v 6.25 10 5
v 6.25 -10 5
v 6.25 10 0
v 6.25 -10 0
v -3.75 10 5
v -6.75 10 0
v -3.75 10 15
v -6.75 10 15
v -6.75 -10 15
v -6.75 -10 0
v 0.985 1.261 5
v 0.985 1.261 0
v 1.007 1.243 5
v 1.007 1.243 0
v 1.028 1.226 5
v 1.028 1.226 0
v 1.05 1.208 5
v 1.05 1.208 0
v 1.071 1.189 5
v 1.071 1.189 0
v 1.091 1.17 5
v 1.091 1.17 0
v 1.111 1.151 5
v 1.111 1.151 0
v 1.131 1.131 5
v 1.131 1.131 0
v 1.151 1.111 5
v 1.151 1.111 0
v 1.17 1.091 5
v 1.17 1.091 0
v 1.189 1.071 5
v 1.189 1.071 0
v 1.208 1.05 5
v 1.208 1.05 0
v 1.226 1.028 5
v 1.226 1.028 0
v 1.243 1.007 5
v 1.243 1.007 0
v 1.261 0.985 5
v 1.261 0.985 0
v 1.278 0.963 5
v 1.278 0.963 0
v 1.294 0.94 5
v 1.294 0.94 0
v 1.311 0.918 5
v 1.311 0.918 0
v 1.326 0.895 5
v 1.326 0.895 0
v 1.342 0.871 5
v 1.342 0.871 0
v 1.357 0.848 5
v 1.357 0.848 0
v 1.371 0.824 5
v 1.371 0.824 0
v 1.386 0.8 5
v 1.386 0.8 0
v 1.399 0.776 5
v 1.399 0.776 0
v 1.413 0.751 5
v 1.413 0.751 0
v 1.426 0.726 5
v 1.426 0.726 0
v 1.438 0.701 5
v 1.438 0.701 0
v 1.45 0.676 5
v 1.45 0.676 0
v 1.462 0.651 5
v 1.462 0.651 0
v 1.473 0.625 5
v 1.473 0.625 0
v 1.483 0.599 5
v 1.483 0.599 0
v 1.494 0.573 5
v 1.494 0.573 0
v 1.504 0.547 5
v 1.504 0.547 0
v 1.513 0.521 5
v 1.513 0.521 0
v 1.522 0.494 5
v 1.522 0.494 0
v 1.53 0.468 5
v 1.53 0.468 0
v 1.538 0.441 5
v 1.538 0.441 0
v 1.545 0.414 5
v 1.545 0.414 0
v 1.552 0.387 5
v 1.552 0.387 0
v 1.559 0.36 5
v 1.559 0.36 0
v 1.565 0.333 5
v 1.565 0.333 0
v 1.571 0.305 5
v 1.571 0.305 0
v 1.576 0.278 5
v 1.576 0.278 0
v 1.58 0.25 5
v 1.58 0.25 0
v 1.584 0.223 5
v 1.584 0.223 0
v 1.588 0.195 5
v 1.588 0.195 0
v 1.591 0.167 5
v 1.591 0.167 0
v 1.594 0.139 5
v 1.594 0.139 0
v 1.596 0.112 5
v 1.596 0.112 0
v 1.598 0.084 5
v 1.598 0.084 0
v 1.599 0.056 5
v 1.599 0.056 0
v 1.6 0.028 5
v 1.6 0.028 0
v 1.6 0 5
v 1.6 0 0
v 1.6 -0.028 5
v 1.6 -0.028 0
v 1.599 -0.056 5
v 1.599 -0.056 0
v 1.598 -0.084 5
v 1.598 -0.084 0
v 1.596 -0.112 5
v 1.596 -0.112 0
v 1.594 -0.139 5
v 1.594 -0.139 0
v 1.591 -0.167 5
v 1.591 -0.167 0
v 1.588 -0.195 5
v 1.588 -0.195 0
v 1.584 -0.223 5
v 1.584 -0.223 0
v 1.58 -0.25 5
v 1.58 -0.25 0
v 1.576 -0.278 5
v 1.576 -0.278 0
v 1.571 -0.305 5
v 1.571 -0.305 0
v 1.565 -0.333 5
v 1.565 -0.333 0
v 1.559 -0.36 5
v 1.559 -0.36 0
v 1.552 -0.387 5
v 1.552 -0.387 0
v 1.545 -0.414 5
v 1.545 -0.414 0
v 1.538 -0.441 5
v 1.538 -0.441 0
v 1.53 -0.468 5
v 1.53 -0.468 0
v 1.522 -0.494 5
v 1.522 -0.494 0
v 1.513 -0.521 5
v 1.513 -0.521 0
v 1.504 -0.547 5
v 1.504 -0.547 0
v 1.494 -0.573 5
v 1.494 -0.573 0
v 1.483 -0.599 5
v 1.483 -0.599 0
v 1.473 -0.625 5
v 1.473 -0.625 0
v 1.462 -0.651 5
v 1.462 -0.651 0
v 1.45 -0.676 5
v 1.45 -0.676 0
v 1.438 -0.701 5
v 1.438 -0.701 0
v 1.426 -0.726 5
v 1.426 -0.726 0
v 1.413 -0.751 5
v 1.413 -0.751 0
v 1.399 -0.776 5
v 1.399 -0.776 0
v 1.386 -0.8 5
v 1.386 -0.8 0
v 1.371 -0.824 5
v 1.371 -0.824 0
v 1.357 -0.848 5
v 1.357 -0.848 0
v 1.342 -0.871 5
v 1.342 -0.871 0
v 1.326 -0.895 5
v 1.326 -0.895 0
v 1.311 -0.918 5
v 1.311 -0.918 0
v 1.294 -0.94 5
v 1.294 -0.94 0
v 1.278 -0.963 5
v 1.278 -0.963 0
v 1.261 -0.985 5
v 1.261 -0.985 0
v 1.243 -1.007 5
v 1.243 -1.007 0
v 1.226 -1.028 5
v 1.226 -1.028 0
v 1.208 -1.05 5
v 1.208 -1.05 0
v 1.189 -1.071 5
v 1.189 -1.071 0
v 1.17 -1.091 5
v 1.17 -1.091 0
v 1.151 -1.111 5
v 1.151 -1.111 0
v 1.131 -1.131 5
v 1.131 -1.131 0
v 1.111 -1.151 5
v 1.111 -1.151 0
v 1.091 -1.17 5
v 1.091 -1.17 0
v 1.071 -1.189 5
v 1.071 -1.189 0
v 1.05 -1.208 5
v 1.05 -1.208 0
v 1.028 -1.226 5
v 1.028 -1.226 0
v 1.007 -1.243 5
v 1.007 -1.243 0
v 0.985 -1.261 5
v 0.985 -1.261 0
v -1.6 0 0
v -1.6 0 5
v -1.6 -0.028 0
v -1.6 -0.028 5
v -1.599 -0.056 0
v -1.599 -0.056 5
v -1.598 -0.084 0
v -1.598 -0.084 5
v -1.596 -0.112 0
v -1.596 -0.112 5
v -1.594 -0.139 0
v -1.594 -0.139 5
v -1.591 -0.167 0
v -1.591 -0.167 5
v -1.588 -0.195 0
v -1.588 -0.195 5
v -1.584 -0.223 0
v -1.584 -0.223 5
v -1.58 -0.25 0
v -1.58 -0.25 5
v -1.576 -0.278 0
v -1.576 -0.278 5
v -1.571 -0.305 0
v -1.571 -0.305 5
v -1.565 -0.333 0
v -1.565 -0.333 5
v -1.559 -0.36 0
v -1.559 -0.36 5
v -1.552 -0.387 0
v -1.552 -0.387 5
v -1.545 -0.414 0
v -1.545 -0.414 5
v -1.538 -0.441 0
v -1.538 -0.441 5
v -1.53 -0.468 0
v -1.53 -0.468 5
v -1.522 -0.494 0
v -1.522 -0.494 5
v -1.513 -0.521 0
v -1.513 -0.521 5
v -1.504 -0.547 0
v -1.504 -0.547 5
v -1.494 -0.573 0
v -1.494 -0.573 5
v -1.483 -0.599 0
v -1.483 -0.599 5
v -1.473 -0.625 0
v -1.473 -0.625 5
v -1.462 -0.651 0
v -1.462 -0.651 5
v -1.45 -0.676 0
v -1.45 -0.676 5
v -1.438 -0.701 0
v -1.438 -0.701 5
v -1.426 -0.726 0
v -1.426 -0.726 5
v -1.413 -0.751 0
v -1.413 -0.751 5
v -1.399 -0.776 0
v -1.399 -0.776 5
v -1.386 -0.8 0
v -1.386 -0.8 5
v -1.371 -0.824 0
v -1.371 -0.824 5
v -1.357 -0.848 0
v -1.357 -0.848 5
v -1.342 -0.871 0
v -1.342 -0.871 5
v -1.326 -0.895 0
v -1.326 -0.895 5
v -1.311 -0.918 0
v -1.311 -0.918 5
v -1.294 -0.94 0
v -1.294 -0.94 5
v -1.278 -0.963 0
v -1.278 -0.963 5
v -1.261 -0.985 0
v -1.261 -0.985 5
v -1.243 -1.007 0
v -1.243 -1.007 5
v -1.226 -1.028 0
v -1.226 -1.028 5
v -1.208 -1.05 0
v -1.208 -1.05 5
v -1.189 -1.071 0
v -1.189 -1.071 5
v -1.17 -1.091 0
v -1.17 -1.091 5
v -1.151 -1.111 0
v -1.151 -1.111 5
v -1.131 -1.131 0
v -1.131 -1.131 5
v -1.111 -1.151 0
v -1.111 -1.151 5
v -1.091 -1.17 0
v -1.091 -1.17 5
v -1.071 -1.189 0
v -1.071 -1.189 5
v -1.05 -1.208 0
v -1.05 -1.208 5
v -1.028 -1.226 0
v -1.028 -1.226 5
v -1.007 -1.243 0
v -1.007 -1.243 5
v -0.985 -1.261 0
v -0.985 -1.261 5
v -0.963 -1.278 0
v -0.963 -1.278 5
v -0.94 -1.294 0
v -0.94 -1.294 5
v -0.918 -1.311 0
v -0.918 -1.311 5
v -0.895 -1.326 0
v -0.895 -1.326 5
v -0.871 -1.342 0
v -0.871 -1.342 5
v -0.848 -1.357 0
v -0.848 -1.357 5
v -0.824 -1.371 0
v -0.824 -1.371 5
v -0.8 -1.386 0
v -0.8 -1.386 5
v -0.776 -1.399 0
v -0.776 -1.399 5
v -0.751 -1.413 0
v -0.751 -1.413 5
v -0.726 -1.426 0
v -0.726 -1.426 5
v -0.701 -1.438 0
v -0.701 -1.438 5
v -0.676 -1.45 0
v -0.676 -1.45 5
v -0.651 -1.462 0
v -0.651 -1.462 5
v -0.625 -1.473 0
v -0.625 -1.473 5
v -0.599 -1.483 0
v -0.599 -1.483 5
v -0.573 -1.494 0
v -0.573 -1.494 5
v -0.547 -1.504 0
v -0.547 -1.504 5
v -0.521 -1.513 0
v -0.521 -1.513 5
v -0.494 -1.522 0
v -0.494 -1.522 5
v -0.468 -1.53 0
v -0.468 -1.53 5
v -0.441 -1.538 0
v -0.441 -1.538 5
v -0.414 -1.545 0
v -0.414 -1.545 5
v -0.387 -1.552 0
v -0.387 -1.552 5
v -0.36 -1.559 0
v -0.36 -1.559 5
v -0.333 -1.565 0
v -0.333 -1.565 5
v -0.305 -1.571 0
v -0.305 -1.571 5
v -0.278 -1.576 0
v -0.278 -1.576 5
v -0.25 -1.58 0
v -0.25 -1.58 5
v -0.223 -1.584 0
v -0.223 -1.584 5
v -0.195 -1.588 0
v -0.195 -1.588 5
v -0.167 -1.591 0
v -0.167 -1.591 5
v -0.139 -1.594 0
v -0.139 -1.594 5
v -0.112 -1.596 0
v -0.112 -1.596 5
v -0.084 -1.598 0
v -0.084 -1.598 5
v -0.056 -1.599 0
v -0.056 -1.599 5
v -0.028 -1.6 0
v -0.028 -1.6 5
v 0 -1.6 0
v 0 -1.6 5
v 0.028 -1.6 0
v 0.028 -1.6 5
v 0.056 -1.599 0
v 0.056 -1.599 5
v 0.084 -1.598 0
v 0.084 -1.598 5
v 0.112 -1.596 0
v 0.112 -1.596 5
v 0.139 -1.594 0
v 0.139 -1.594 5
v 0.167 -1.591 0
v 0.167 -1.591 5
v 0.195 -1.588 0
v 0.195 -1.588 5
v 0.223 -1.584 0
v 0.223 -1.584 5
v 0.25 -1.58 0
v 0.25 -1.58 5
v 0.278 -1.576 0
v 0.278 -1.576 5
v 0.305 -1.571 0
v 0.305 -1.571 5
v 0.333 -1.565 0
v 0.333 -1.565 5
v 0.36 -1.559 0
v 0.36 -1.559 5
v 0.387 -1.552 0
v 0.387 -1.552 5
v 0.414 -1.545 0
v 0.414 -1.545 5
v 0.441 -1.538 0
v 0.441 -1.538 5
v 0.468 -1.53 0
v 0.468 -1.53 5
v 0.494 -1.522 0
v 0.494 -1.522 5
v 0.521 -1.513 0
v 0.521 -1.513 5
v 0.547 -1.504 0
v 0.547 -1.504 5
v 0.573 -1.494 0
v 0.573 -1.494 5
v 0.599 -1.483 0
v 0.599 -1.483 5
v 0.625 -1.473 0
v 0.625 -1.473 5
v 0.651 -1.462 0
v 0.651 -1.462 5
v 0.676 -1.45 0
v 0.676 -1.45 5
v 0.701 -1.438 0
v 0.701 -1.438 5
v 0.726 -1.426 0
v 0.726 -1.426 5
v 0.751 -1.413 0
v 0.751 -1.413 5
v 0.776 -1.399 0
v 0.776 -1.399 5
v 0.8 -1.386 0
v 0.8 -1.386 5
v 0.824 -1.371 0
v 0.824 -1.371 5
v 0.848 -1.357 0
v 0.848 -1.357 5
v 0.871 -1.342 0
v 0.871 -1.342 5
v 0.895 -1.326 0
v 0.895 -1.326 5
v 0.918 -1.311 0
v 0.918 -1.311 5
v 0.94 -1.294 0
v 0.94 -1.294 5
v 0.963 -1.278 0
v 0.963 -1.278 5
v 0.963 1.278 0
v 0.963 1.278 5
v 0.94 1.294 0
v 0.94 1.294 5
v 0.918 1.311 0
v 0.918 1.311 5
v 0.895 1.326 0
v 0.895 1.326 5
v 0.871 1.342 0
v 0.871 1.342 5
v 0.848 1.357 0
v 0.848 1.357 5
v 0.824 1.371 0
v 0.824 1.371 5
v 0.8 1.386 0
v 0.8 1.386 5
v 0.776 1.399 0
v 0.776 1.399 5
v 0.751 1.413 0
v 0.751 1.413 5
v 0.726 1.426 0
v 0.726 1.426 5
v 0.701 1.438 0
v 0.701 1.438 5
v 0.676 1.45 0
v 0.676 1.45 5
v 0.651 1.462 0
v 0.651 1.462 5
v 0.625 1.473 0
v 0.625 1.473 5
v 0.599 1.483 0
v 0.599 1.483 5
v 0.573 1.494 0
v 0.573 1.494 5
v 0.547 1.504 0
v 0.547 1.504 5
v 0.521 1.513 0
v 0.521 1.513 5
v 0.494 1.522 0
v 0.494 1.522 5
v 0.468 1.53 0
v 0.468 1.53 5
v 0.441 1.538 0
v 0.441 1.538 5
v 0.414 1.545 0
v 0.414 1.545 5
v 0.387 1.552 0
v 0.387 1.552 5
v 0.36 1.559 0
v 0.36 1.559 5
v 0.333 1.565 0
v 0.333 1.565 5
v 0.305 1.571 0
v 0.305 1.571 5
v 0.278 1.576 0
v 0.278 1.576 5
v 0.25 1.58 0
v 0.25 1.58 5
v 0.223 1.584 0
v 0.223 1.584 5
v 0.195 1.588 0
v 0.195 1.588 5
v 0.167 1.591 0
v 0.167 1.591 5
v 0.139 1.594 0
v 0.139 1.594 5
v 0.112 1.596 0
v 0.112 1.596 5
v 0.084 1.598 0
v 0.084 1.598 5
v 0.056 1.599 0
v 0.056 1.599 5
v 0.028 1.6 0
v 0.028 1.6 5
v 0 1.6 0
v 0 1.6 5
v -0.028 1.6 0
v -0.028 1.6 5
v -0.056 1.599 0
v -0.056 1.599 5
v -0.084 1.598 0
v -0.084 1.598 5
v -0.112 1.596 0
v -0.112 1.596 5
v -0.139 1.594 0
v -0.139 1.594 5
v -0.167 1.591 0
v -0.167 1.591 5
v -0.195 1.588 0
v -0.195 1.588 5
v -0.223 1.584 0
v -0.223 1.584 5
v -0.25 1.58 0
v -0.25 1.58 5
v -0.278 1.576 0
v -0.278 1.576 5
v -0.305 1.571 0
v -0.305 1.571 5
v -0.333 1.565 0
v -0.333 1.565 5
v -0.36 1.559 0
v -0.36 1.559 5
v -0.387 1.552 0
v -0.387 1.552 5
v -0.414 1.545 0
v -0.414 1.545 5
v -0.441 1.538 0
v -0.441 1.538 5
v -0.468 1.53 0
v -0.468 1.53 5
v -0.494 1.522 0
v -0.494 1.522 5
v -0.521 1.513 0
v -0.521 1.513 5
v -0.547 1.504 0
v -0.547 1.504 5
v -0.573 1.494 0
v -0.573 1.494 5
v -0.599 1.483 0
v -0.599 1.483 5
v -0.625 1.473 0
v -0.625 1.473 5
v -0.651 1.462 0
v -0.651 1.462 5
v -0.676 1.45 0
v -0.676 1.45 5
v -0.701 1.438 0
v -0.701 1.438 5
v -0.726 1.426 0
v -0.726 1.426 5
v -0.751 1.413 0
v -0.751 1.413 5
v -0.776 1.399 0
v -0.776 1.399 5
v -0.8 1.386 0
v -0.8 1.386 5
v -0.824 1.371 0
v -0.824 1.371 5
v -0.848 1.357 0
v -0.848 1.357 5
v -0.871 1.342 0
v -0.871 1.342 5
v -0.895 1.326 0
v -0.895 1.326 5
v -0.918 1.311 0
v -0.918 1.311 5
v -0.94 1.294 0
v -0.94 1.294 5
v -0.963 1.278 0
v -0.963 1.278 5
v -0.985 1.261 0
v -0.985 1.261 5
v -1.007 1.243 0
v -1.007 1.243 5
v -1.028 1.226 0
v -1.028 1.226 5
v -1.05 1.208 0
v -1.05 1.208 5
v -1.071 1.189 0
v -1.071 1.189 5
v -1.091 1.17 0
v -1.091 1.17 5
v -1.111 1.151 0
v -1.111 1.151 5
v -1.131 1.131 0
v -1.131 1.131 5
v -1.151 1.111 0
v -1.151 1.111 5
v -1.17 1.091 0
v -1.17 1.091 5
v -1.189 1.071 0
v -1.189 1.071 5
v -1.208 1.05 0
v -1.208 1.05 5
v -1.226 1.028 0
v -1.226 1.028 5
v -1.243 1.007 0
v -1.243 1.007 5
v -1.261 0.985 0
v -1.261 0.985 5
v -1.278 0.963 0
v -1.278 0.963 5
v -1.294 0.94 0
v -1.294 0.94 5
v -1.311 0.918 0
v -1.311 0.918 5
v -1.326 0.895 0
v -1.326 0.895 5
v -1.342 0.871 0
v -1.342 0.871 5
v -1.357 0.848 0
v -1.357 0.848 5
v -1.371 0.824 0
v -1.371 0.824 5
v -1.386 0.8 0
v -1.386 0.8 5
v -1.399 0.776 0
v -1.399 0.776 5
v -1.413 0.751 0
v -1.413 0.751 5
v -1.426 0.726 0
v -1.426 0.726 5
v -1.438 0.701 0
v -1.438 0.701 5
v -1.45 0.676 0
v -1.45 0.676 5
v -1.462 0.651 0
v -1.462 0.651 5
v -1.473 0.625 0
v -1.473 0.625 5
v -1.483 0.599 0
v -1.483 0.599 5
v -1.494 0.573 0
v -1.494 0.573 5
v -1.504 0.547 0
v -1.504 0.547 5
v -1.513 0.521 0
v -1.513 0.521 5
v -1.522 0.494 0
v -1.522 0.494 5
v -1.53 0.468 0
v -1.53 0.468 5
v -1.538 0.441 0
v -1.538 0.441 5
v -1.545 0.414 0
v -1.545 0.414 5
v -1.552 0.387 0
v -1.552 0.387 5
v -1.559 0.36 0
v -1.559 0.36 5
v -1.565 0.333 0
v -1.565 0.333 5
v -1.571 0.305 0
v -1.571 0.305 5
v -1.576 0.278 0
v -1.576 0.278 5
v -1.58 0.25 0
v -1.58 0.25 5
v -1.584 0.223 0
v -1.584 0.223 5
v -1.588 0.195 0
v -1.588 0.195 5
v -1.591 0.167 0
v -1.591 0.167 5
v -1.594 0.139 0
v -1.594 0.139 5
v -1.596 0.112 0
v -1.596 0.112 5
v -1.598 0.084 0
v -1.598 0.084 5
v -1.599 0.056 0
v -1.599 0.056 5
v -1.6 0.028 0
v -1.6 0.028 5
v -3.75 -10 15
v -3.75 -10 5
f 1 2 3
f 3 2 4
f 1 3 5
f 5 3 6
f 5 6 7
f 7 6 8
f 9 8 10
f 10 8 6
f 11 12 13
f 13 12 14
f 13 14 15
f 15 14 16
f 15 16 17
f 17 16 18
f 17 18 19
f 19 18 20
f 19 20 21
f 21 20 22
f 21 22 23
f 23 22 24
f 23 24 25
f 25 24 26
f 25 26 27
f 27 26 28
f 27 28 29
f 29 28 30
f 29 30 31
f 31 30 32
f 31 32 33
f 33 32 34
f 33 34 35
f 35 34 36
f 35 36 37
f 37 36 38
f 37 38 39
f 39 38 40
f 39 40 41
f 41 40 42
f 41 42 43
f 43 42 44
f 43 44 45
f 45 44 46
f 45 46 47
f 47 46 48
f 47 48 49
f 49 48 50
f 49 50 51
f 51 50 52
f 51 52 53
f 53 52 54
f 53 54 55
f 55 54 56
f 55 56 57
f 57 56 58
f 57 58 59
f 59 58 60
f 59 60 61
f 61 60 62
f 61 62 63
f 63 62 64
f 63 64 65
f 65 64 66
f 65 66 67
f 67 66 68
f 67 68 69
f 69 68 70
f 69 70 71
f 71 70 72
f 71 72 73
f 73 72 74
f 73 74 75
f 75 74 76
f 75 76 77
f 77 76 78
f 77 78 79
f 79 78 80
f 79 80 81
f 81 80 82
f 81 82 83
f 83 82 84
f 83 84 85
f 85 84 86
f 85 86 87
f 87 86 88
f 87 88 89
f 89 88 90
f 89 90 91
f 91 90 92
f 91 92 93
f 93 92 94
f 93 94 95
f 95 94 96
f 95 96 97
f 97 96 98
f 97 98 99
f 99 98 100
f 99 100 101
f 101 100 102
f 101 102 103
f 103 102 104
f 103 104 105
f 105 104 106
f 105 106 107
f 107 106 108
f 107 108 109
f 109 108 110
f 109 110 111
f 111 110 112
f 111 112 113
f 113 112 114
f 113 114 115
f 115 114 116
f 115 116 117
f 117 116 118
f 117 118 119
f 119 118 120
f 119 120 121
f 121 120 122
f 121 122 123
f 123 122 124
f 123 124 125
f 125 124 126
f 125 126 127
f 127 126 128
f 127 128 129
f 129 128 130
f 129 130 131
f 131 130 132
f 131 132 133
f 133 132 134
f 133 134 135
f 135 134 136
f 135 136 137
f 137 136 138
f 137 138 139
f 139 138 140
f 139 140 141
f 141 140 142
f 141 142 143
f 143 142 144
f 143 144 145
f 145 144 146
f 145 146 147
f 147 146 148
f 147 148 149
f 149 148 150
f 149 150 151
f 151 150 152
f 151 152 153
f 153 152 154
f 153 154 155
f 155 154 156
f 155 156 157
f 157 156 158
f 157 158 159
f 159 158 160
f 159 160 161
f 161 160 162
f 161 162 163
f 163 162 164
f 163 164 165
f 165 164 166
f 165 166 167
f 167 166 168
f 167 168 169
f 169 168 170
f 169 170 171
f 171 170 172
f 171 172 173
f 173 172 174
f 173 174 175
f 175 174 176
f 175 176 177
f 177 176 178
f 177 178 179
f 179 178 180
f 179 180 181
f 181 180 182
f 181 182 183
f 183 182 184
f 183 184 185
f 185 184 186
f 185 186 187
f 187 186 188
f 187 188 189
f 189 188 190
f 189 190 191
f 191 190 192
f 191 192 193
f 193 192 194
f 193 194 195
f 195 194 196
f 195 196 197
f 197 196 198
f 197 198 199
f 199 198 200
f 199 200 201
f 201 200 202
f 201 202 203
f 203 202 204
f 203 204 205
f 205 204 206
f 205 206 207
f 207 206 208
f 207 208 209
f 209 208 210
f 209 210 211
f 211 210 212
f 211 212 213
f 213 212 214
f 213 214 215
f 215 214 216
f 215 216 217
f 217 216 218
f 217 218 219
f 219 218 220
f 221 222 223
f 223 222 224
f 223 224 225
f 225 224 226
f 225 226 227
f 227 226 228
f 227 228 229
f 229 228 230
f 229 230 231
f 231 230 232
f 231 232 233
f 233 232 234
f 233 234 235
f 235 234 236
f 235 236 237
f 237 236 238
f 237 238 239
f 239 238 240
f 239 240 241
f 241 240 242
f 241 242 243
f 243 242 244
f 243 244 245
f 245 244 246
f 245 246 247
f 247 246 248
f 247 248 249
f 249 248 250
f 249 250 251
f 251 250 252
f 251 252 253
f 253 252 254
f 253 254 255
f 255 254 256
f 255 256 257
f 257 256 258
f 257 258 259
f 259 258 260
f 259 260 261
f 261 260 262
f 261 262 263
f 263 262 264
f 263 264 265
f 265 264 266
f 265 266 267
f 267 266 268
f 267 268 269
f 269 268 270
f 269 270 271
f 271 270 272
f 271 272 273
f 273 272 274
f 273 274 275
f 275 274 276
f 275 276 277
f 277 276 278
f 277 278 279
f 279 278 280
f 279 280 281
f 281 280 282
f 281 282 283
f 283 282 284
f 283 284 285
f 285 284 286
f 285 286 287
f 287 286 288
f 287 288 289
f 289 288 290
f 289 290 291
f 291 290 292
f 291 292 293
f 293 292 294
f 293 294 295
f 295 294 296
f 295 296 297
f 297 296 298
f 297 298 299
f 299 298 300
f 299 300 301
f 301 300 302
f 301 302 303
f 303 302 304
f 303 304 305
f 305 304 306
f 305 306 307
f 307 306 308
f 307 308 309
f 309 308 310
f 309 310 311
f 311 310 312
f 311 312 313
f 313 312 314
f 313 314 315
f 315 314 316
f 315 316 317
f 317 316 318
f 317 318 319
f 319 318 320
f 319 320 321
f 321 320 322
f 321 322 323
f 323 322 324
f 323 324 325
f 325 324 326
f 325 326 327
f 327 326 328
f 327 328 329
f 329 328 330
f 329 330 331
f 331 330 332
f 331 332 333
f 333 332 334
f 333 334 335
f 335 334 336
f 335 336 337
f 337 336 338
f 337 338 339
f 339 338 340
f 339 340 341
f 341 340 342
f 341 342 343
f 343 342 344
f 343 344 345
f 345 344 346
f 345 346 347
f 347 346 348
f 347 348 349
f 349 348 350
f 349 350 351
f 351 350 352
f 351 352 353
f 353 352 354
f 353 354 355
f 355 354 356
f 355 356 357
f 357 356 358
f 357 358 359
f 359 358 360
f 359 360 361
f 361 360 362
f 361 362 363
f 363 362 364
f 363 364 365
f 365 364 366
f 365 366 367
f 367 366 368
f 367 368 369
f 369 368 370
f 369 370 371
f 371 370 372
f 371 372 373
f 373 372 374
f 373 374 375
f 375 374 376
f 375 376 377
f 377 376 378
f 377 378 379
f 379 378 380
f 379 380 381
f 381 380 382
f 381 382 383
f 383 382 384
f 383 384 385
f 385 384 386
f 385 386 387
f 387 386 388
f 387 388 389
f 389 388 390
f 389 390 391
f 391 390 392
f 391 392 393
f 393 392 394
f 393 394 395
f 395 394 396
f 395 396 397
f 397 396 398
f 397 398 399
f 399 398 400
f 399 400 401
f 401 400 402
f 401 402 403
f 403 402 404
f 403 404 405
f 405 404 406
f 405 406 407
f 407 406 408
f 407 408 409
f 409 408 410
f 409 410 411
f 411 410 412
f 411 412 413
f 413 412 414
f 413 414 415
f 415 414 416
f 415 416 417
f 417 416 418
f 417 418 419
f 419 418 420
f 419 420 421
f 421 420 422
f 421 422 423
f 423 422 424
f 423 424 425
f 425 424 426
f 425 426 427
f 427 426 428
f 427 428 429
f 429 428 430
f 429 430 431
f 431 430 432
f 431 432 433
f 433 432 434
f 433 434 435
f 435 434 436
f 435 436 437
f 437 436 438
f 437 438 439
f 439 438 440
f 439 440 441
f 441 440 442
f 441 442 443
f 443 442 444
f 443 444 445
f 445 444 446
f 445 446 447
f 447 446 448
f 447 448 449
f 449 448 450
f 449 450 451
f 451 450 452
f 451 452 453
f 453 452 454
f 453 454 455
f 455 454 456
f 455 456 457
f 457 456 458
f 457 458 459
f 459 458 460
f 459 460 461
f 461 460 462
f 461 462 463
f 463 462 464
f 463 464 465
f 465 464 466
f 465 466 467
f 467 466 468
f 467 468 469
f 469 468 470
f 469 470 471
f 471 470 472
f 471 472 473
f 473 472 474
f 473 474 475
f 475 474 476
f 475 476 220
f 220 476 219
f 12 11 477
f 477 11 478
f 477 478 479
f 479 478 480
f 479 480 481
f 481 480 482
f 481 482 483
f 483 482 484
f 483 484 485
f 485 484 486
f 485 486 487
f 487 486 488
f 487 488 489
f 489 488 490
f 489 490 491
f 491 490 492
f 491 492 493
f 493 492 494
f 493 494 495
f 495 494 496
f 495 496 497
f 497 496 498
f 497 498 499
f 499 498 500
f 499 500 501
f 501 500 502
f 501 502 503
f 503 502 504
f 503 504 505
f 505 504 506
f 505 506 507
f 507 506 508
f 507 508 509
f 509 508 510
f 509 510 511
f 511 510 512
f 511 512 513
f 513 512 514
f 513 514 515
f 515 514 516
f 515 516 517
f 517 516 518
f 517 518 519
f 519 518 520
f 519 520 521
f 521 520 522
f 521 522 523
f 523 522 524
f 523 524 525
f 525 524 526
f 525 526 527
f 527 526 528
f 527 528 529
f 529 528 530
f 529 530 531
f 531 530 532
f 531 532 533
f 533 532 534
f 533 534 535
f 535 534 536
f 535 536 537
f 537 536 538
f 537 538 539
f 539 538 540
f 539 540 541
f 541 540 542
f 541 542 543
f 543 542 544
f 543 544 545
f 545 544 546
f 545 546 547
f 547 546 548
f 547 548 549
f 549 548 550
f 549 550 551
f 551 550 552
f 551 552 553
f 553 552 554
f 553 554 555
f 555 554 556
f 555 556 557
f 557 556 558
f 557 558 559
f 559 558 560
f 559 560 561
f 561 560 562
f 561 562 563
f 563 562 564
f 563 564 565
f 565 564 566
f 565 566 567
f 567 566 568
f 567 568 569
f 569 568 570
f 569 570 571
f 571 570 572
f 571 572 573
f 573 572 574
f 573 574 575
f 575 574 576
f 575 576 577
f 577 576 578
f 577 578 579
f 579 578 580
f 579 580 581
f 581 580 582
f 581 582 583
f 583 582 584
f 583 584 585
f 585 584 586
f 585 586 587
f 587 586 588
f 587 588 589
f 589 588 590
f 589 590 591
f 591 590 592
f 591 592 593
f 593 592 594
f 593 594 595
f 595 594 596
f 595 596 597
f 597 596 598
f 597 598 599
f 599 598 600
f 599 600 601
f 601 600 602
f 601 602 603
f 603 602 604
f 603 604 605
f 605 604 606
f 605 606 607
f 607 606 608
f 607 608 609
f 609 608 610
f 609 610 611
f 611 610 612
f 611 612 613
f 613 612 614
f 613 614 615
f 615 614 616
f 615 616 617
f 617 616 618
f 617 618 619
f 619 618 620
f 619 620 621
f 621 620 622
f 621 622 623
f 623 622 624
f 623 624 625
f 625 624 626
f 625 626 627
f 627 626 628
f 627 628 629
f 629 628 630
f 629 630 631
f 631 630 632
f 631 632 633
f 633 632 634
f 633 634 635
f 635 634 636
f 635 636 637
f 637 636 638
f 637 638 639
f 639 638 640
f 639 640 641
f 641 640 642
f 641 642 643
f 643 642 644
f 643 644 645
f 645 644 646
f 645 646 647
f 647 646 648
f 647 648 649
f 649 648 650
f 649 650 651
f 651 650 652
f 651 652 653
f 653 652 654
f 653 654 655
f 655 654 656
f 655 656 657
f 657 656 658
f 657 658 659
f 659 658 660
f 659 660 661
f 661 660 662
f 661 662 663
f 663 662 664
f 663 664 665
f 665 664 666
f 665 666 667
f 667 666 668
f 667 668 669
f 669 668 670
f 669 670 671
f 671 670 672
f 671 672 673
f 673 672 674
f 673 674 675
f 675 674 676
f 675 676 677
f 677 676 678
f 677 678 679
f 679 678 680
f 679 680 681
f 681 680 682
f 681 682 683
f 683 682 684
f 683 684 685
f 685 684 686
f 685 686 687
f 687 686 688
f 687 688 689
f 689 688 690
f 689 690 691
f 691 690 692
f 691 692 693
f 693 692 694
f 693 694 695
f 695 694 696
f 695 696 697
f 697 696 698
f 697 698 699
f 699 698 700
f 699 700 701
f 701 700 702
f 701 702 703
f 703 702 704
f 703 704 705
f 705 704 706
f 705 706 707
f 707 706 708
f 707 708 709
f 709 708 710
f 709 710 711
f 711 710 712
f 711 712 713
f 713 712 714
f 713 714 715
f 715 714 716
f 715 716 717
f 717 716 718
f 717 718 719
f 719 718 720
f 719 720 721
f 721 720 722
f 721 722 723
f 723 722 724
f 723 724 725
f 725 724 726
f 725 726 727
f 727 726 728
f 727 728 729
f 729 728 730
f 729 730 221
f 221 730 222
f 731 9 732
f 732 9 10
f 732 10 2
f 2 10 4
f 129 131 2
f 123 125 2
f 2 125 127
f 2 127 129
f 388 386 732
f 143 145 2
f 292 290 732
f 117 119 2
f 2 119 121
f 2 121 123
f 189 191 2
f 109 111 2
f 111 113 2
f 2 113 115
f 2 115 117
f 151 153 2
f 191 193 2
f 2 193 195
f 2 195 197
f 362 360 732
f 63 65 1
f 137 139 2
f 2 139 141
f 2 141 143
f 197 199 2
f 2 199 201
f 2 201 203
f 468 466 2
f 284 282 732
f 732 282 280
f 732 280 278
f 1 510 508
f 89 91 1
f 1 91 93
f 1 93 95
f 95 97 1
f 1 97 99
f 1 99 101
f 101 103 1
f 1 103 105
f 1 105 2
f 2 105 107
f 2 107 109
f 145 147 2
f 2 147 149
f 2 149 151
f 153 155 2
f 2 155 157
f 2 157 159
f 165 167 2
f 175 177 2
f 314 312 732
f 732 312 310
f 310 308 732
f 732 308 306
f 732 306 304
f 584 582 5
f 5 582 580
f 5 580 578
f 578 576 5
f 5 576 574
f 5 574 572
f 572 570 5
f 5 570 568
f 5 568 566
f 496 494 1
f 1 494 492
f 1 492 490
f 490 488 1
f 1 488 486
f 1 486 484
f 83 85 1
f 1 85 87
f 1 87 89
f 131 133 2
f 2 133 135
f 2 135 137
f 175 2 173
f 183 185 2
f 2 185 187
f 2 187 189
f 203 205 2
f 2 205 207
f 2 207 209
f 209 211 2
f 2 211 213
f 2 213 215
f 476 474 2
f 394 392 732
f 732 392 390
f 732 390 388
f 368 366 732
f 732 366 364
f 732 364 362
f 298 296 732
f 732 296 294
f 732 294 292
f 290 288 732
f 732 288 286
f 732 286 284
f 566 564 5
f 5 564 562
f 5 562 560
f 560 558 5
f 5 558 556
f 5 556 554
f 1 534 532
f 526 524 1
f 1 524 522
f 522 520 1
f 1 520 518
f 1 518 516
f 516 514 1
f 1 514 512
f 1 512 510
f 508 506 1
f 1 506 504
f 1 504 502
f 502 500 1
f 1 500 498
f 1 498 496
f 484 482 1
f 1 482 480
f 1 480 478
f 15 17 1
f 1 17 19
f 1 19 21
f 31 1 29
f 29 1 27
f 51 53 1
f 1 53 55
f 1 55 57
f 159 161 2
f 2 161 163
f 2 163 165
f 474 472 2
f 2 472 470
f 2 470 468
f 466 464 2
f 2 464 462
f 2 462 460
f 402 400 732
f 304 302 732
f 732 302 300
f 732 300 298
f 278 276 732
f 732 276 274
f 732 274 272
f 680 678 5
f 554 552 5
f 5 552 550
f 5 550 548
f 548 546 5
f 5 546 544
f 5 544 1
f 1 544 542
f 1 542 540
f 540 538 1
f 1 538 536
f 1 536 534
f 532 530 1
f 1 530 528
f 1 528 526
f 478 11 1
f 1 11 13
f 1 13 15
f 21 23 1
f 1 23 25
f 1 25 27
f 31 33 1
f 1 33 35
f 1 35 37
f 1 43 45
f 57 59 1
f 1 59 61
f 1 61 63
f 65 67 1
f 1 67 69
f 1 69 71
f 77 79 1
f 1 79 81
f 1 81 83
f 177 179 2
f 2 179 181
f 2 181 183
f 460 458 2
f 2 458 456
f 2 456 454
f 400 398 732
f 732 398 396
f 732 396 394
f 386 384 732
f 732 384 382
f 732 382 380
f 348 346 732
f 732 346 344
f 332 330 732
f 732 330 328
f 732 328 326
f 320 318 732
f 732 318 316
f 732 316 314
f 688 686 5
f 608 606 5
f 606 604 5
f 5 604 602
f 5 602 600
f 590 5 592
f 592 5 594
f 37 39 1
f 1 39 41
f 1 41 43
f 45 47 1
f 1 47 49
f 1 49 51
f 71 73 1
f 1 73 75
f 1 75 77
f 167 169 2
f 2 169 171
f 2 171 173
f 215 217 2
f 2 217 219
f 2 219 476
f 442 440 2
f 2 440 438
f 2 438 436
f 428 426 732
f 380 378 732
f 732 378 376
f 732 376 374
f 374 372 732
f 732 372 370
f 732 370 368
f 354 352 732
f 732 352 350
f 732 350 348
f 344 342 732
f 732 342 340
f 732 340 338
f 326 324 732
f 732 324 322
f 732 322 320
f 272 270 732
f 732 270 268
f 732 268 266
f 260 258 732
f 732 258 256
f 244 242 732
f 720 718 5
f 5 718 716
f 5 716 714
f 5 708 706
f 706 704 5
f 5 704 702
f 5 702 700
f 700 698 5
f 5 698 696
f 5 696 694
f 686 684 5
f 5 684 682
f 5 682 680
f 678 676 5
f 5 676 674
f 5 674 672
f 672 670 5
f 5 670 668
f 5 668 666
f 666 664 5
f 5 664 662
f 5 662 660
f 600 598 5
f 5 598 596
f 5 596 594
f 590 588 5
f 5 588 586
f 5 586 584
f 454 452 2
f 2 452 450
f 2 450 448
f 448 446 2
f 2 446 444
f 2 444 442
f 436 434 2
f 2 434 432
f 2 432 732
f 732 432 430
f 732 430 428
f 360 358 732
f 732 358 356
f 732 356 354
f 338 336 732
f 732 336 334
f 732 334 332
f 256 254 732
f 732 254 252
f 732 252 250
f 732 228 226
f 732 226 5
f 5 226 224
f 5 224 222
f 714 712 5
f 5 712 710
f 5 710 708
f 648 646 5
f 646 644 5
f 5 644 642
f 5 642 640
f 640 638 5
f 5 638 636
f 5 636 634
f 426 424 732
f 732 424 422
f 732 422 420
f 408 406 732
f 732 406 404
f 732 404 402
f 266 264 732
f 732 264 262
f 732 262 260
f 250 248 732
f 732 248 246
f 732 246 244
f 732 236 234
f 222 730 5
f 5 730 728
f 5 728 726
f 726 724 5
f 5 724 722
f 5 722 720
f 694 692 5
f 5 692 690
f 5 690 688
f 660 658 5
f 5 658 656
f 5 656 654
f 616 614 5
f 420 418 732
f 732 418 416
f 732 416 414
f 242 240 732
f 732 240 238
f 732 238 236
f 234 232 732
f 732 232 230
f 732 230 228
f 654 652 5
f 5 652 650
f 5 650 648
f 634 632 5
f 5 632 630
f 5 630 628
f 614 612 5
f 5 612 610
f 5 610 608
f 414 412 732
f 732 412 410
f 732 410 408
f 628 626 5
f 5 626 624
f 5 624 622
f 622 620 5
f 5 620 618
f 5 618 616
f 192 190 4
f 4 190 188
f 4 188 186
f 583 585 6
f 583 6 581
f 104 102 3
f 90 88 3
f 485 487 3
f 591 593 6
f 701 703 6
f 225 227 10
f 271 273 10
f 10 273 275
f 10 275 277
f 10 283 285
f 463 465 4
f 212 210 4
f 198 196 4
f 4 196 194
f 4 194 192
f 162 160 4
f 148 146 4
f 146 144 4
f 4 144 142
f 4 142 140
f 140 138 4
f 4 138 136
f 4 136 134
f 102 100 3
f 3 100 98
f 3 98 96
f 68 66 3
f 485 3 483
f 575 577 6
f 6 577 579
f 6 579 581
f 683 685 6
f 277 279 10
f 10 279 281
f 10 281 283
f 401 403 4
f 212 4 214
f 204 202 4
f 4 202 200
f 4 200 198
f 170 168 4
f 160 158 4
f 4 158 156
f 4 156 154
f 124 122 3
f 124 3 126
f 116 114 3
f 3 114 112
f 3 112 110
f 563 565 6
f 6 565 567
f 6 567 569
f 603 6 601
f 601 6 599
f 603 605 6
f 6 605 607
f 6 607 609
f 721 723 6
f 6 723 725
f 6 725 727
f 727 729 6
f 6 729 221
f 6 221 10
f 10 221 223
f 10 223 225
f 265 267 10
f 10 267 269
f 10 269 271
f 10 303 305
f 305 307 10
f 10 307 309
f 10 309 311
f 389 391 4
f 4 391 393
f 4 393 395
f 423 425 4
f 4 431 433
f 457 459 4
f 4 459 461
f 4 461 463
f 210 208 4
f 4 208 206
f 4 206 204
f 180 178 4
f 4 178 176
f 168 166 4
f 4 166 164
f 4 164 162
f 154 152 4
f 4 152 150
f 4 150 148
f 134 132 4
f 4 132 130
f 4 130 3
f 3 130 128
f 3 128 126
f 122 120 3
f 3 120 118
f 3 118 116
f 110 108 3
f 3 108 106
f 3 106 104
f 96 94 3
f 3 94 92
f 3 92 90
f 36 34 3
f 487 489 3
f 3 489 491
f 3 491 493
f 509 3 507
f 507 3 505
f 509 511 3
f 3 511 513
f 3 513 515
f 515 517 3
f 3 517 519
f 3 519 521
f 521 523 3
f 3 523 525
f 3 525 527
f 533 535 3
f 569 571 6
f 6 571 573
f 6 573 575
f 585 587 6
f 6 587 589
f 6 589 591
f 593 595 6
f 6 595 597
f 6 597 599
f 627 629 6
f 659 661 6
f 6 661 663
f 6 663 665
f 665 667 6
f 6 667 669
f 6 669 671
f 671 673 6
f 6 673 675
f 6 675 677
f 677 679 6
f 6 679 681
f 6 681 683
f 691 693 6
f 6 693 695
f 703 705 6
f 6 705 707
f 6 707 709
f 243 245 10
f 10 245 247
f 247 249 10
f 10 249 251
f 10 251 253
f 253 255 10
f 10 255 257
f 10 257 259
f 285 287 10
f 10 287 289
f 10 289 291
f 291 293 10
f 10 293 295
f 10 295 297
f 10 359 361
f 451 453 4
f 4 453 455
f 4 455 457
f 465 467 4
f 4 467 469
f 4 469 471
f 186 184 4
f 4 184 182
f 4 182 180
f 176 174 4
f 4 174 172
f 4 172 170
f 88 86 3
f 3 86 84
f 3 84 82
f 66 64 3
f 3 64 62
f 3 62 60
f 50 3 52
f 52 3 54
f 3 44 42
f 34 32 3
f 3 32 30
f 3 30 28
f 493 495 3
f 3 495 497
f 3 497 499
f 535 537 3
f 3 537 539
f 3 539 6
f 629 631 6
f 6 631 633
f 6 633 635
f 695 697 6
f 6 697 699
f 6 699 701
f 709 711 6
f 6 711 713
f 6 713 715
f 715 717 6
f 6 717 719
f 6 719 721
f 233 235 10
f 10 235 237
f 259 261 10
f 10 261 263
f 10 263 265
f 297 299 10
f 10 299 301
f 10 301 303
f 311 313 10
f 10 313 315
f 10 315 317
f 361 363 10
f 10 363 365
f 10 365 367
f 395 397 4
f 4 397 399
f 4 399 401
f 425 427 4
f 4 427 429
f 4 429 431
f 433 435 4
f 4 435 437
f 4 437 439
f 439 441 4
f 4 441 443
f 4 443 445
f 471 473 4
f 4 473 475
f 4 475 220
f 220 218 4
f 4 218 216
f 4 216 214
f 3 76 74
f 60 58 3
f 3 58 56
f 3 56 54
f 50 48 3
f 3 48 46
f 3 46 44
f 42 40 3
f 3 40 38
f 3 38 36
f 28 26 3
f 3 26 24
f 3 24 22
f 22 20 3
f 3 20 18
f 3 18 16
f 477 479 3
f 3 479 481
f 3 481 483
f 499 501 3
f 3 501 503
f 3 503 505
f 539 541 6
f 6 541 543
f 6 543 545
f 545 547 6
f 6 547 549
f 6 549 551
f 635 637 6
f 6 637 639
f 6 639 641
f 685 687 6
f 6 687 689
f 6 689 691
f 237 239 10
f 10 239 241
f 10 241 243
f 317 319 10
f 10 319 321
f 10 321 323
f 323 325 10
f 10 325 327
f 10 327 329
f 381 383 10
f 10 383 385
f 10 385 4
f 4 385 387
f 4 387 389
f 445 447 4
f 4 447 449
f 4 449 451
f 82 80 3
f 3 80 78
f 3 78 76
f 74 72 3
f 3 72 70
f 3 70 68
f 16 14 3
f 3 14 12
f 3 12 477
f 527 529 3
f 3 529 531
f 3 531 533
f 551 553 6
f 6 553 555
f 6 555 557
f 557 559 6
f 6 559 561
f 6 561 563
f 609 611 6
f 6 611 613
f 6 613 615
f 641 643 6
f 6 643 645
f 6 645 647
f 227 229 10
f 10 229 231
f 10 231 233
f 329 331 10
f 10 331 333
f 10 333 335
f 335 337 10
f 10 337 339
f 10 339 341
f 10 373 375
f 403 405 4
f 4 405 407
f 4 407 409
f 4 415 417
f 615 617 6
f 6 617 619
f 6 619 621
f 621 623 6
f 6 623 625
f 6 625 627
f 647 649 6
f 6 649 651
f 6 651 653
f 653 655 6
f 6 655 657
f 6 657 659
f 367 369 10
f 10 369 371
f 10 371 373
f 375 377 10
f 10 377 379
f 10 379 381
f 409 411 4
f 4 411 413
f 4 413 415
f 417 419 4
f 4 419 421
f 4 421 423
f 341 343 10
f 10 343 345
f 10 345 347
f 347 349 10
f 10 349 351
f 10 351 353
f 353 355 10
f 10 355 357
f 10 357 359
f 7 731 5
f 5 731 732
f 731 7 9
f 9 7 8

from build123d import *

# Parameters (mm, degrees)
SZKIC1_W                    = 10
SZKIC1_H                    = 20
SZKIC1_R                    = 1.6
SZKIC1_W_2                  = 3
DODANIE_WYCI_GNI_CIE1_DEPTH = 5
SZKIC2_W                    = 3
SZKIC2_H                    = 20
DODANIE_WYCI_GNI_CIE2_DEPTH = 10


with BuildPart() as part:
    # Szkic1 → Dodanie-wyciągnięcie1 (new body)
    # profile 1 of 2: a face of its own
    with BuildSketch(Plane.XY):
        with Locations((1.25, 0)):
            Rectangle(SZKIC1_W, SZKIC1_H)
        Circle(SZKIC1_R, mode=Mode.SUBTRACT)
    # profile 2 of 2: a face of its own
    with BuildSketch(Plane.XY):
        with Locations((-5.25, 0)):
            Rectangle(SZKIC1_W_2, SZKIC1_H)
    extrude(amount=DODANIE_WYCI_GNI_CIE1_DEPTH)

    # Szkic2 → Dodanie-wyciągnięcie2 (add)
    with BuildSketch(Plane.XY.offset(5)):
        with Locations((-5.25, 0)):
            Rectangle(SZKIC2_W, SZKIC2_H)
    extrude(amount=DODANIE_WYCI_GNI_CIE2_DEPTH)


solid = part.part
